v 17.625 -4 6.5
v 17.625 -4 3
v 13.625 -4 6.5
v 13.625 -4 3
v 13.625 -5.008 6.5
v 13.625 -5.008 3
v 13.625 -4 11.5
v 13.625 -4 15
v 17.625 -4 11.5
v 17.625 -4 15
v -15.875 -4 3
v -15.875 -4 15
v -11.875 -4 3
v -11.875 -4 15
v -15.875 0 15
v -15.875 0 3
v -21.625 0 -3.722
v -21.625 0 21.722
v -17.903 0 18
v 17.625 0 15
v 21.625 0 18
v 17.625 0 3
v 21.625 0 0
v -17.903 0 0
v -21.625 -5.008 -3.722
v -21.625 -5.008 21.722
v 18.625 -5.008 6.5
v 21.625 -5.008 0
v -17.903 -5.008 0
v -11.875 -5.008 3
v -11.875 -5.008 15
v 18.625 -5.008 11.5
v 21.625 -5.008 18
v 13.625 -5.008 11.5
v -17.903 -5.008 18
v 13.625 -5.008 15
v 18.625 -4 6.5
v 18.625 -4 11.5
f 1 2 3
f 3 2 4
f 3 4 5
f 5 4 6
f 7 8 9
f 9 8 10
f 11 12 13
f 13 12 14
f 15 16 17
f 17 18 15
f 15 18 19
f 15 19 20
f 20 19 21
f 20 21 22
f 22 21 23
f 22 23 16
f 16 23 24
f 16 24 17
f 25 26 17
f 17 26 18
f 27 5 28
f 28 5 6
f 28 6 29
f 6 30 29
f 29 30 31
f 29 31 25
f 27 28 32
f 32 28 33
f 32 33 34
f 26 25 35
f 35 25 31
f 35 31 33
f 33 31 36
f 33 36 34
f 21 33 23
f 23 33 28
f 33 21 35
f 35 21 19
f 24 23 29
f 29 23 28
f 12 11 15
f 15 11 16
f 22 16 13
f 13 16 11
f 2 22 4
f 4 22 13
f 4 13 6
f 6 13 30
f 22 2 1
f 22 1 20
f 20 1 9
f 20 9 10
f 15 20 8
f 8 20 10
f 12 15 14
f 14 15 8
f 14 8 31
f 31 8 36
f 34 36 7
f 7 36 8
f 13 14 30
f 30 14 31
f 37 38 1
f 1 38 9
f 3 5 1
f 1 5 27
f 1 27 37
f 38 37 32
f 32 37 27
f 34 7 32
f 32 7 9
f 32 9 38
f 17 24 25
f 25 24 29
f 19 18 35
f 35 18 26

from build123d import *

# Parameters (mm, degrees)
SKETCH1_W           = 43.25
SKETCH1_H           = 5.00807777
BOSS_EXTRUDE1_DEPTH = 18
SKETCH2_W           = 33.5
SKETCH2_H           = 12
CUT_EXTRUDE1_DEPTH  = 4
CUT_EXTRUDE2_REACH  = 30.419
SKETCH3_W           = 25.5
SKETCH3_H           = 12
CUT_EXTRUDE3_REACH  = 30.419
SKETCH4_W           = 5
SKETCH4_H           = 5
BOSS_EXTRUDE2_DEPTH = 5.00807777


with BuildPart() as part:
    # Sketch1 → Boss-Extrude1 (new body)
    with BuildSketch(Plane.XY):
        with Locations((0, -2.504038885)):
            Rectangle(SKETCH1_W, SKETCH1_H)
    extrude(amount=BOSS_EXTRUDE1_DEPTH)

    # Sketch2 → Cut-Extrude1 (cut)
    with BuildSketch(Plane(origin=(0, 0, 0), x_dir=(1, 0, 0), z_dir=(0, 1, 0))):
        with Locations((0.875, -9)):
            Rectangle(SKETCH2_W, SKETCH2_H)
    extrude(amount=-CUT_EXTRUDE1_DEPTH, mode=Mode.SUBTRACT)

    # Sketch3 → Cut-Extrude2 (cut, up to next)
    with BuildSketch(Plane(origin=(0, -4, 0), x_dir=(1, 0, 0), z_dir=(0, 1, 0)), mode=Mode.PRIVATE) as cut_extrude2_sk1:
        with Locations((0.875, -9)):
            Rectangle(SKETCH3_W, SKETCH3_H)
    cut_extrude2_tool1 = extrude(cut_extrude2_sk1.sketch, amount=-CUT_EXTRUDE2_REACH, mode=Mode.PRIVATE) & part.part
    add(cut_extrude2_tool1.solids().sort_by_distance((0.875, -4, 9))[0], mode=Mode.SUBTRACT)

    # Sketch4 → Cut-Extrude3 (cut, up to next)
    with BuildSketch(Plane(origin=(0, -4, 0), x_dir=(1, 0, 0), z_dir=(0, 1, 0)), mode=Mode.PRIVATE) as cut_extrude3_sk1:
        with Locations((16.125, -9)):
            Rectangle(SKETCH4_W, SKETCH4_H)
    cut_extrude3_tool1 = extrude(cut_extrude3_sk1.sketch, amount=-CUT_EXTRUDE3_REACH, mode=Mode.PRIVATE) & part.part
    add(cut_extrude3_tool1.solids().sort_by_distance((16.125, -4, 9))[0], mode=Mode.SUBTRACT)

    # Sketch5 → Boss-Extrude2 (add)
    with BuildSketch(Plane(origin=(0, 0, 0), x_dir=(1, 0, 0), z_dir=(0, 1, 0))):
        Polygon((-21.625, 0), (-21.625, 3.721580372), (-17.903419628, 0), align=None)
        Polygon((-17.903419628, -18), (-21.625, -18), (-21.625, -21.721580372), align=None)
    extrude(amount=-BOSS_EXTRUDE2_DEPTH)


solid = part.part
